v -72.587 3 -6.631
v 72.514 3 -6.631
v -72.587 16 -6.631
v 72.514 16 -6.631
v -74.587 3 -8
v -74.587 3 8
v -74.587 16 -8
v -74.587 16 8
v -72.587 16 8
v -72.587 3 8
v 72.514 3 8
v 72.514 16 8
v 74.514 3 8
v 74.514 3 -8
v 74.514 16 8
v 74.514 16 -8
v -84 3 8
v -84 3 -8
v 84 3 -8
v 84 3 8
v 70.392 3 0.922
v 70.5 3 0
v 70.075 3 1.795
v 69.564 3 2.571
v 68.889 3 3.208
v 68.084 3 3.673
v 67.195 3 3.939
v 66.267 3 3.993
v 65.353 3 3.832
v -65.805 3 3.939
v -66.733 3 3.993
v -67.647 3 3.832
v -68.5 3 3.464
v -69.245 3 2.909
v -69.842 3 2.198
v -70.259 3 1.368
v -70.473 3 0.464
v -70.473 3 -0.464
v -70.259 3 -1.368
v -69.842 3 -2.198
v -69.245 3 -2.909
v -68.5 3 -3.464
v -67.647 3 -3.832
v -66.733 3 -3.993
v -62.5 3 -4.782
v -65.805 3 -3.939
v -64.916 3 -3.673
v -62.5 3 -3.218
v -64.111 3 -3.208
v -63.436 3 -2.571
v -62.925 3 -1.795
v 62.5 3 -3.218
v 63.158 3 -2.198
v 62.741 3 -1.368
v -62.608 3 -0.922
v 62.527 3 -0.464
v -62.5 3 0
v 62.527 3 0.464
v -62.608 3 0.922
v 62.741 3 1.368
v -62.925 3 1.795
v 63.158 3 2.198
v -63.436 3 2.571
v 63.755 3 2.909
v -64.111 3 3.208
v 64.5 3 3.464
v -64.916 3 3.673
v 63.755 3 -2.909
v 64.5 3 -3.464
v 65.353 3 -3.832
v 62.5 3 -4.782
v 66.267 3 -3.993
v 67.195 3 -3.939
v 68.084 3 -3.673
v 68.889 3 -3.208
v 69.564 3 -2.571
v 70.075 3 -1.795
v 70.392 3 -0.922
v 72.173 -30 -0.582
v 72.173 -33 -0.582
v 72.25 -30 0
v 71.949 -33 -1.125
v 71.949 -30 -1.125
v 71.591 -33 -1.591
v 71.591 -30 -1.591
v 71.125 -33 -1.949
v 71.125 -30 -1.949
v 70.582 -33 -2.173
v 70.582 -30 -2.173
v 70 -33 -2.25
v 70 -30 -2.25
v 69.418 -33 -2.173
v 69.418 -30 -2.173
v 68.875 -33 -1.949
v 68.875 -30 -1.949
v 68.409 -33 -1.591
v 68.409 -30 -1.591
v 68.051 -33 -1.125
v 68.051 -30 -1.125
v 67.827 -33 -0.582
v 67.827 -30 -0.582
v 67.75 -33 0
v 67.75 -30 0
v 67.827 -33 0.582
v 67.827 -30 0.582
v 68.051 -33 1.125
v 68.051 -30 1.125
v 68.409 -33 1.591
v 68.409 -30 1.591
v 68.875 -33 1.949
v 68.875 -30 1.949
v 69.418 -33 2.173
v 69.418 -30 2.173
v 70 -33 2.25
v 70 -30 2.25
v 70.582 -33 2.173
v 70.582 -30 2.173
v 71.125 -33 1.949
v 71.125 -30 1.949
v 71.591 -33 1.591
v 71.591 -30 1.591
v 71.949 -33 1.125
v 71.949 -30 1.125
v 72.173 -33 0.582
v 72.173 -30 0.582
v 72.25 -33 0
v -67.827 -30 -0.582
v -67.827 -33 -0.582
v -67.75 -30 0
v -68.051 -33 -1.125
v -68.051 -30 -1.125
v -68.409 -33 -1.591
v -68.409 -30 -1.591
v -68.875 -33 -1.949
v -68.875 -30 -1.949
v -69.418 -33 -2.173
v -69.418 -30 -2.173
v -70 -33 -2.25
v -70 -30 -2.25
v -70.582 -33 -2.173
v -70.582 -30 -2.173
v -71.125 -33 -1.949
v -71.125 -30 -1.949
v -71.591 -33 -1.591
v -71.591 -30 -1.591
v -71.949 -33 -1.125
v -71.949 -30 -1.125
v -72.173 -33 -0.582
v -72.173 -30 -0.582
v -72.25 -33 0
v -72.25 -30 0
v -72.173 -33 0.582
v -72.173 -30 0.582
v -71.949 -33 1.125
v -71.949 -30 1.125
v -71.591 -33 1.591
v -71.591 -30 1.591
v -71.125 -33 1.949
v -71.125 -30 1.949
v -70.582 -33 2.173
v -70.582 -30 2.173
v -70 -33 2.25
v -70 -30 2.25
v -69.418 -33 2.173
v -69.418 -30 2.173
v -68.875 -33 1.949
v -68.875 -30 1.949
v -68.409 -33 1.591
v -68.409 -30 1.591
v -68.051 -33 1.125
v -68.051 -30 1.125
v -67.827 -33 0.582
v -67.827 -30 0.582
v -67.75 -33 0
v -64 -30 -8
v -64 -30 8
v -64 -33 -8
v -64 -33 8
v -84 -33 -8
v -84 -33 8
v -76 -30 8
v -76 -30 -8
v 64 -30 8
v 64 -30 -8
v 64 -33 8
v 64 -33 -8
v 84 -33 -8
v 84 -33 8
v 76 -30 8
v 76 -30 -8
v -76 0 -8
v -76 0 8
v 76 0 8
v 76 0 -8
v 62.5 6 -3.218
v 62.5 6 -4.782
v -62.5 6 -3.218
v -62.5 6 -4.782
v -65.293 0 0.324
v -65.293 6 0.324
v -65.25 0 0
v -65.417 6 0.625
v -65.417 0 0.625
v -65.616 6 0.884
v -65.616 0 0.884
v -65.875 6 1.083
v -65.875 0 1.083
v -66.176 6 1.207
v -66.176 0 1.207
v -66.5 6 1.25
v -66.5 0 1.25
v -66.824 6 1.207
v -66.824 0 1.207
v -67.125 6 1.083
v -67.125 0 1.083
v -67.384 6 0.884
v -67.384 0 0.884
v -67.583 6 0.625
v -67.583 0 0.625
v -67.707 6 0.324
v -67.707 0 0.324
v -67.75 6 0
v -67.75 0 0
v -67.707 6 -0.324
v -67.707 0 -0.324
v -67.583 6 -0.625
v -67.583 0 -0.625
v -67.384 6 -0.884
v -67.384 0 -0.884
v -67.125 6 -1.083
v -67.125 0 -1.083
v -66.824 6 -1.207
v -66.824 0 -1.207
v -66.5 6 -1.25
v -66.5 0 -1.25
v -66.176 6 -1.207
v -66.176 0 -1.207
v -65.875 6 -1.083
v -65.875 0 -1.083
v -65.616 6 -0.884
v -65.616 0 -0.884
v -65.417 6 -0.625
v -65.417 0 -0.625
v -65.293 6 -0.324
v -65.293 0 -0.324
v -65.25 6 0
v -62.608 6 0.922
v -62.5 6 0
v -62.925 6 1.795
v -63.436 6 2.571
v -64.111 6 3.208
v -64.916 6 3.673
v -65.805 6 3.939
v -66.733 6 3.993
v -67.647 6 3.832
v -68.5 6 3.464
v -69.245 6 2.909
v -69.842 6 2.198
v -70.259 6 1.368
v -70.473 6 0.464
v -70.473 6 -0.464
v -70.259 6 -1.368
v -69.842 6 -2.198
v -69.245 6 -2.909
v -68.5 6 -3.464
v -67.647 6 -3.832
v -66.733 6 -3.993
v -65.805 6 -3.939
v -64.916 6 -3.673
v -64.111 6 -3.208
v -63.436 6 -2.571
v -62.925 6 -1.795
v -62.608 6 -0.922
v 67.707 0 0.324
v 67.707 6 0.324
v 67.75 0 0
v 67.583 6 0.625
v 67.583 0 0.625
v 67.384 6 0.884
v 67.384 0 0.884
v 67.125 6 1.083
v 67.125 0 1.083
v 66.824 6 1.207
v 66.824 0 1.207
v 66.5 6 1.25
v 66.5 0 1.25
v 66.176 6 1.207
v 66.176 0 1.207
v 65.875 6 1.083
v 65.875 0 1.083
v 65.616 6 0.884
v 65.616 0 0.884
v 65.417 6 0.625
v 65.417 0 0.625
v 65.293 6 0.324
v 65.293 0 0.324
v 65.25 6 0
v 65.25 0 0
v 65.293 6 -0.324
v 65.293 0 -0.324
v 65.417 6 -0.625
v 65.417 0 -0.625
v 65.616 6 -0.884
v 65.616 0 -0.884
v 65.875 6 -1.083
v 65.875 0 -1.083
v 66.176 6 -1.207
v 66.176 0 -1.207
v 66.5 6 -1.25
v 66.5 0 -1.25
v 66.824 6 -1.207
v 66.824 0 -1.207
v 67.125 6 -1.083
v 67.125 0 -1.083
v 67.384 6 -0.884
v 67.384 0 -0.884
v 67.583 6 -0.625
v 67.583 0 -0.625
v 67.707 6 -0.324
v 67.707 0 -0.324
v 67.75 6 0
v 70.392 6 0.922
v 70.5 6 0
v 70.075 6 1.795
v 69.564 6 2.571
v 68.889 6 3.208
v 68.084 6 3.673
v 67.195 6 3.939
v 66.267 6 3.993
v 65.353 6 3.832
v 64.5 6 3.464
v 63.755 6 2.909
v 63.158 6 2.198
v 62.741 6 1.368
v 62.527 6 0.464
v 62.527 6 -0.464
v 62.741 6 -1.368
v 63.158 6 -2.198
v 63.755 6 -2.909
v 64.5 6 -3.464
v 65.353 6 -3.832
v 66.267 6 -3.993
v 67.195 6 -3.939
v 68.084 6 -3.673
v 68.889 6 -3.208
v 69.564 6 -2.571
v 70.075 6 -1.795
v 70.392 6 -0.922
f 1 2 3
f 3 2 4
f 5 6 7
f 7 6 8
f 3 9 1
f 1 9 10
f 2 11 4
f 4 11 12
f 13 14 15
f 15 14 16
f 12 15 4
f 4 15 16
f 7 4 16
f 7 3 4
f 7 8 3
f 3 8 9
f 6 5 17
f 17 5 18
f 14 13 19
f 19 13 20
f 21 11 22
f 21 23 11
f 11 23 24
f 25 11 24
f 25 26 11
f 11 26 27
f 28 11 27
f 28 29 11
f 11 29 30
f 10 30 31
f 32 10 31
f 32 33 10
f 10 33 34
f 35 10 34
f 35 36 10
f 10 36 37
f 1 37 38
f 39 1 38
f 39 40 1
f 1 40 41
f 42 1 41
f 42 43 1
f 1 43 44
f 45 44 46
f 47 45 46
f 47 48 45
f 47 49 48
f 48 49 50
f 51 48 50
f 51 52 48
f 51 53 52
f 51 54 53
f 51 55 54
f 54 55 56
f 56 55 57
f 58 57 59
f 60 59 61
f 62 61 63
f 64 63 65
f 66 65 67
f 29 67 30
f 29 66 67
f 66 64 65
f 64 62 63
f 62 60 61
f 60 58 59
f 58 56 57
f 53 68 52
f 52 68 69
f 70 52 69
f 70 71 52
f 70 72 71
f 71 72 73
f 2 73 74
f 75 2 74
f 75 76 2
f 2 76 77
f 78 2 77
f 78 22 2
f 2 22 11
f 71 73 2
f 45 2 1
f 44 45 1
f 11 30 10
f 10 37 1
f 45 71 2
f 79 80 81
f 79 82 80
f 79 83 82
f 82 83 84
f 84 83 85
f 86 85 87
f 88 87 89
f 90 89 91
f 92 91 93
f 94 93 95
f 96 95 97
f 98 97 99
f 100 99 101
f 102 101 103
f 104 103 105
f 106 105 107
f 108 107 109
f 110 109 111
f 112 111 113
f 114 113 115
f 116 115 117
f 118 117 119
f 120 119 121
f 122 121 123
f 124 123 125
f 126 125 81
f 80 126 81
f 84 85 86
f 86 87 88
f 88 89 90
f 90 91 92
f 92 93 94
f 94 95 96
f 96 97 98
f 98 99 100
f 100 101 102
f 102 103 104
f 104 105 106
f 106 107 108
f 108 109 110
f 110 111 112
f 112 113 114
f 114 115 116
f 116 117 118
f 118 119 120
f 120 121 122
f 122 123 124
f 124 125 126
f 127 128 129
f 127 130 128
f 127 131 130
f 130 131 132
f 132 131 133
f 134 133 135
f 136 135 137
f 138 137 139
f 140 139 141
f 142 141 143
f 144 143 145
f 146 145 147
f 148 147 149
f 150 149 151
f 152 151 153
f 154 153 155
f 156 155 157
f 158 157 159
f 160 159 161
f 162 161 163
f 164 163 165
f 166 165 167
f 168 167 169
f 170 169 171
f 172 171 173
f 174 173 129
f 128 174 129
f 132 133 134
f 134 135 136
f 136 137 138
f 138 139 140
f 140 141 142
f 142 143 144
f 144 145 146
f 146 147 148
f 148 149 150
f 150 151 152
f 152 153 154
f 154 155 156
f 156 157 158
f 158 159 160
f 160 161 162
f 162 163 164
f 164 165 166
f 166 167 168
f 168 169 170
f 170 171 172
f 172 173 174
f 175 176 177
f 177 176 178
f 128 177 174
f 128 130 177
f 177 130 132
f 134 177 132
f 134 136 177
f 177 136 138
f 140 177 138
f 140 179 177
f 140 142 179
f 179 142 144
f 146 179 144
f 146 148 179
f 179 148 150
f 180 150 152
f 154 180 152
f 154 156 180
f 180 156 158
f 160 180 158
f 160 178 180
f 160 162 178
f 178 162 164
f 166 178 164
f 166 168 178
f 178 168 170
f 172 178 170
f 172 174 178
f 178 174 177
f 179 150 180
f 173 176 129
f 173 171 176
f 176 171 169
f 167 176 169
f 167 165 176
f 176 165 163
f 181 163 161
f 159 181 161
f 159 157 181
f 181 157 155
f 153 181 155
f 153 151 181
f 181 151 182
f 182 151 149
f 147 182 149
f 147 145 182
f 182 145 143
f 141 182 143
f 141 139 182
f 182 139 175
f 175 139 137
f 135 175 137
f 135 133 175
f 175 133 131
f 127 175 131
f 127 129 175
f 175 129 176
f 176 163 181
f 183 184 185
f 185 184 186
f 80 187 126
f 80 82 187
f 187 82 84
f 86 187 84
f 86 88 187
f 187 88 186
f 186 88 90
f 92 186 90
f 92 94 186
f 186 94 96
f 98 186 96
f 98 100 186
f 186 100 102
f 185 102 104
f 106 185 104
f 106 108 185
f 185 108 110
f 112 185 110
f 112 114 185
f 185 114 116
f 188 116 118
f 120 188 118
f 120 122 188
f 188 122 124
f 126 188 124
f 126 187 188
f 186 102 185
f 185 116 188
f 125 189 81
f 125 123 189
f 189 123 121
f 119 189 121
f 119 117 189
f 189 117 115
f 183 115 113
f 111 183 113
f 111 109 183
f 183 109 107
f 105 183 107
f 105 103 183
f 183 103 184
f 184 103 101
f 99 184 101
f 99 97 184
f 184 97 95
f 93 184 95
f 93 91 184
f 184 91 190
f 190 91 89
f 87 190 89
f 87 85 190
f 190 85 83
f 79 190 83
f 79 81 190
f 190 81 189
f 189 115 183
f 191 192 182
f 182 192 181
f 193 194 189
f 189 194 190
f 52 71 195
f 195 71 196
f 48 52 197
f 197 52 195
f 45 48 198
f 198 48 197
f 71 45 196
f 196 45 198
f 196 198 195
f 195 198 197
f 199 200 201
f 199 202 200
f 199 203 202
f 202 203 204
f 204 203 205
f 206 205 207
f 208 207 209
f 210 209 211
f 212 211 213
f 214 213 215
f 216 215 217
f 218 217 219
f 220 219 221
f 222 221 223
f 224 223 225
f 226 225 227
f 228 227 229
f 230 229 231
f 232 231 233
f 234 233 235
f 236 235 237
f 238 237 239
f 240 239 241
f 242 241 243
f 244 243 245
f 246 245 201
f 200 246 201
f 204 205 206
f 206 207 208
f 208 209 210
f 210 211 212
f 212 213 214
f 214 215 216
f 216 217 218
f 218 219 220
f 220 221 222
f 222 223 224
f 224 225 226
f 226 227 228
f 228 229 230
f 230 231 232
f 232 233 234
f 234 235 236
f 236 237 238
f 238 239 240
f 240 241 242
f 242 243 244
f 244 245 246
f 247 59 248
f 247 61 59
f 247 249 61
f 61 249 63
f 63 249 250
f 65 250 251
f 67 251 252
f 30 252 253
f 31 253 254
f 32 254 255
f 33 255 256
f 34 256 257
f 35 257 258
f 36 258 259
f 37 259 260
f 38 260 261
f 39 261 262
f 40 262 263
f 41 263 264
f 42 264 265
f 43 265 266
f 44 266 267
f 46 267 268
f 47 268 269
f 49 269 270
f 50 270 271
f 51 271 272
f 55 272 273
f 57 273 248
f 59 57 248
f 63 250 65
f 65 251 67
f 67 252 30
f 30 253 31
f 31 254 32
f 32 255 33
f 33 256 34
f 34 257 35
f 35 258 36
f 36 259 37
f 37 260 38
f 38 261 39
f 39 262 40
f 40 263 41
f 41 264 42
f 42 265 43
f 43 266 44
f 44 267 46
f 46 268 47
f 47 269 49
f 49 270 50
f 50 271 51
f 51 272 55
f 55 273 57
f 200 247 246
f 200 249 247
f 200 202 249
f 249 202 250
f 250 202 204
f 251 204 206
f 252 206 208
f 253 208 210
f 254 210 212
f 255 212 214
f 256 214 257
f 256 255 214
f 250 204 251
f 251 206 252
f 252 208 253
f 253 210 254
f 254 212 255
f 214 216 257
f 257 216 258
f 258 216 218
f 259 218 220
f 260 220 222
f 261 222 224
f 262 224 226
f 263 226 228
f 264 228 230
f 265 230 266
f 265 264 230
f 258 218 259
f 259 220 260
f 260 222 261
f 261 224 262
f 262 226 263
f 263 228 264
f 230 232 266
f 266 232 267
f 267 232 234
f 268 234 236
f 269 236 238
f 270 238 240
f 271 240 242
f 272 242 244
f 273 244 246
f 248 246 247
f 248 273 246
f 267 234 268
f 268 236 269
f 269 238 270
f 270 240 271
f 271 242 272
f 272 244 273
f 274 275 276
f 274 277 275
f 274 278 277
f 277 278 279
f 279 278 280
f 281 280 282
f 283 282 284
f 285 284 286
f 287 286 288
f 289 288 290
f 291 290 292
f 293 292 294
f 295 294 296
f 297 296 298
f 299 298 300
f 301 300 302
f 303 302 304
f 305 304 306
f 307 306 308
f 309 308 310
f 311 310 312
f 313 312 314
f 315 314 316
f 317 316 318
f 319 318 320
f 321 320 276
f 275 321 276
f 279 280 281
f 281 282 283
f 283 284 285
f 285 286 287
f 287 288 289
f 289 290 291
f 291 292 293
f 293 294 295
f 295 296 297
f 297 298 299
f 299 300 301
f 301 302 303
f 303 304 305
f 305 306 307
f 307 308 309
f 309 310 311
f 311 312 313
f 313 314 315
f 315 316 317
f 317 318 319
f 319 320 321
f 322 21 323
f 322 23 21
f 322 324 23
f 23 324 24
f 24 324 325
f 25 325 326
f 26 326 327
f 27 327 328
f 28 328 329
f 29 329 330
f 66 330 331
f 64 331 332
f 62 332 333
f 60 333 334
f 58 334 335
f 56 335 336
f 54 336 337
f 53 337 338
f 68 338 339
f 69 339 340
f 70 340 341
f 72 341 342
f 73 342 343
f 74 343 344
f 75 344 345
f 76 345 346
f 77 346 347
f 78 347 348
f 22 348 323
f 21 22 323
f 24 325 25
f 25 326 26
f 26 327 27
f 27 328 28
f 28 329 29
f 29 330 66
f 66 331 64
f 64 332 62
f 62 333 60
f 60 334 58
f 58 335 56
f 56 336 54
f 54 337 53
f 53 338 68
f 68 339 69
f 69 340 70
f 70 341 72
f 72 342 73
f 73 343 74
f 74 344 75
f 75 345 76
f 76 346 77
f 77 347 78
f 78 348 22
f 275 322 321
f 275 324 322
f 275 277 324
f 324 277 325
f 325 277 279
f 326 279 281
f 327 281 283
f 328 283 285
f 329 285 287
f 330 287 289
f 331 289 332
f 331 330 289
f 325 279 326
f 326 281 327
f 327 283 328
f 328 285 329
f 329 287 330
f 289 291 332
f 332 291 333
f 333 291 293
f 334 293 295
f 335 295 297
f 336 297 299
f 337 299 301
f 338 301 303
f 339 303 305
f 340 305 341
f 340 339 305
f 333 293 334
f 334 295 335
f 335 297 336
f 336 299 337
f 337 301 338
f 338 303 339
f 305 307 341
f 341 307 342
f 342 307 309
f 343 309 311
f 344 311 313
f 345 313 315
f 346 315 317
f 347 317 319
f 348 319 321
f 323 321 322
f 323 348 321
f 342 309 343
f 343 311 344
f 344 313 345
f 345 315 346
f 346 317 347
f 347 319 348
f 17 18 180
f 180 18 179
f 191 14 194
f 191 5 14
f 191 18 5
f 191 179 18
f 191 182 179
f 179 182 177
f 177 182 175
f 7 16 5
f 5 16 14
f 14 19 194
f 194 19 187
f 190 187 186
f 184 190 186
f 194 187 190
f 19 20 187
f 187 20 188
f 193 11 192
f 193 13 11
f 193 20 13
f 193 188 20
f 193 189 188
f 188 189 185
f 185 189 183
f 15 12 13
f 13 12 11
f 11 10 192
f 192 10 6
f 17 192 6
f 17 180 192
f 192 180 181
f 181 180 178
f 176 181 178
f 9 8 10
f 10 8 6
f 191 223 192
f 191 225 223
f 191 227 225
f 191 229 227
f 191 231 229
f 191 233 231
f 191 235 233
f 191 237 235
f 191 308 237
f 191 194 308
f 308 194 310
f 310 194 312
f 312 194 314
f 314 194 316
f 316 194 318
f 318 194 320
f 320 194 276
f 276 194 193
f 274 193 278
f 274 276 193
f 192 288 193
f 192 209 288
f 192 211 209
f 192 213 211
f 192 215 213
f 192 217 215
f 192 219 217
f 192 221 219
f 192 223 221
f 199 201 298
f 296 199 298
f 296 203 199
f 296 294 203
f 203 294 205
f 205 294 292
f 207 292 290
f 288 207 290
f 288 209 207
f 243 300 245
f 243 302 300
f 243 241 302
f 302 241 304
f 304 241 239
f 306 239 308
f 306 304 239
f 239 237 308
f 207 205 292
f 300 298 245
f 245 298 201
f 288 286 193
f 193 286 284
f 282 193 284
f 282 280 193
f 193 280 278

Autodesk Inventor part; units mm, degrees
ref_plane "YZ Plane" through (0, 0, 0) normal (1, 0, 0) x (0, 1, 0)
ref_plane "XZ Plane" through (0, 0, 0) normal (0, 1, 0) x (-1, 0, 0)
ref_plane "XY Plane" through (0, 0, 0) normal (0, 0, 1) x (1, 0, 0)
sketch "Sketch1" plane through (0, 0, 0) normal (0, 1, 0) x (-1, 0, 0)
  line L0 (75, 8) -> (-75, 8)
  line L1 (-75, 8) -> (-75, -8)
  line L2 (-75, -8) -> (75, -8)
  line L3 (75, -8) -> (75, 8)
  line L4 (75, 8) -> (-75, -8) construction
  line L5 (-75, 8) -> (75, -8) construction
  line L6 (-75, 8) -> (-84, 8)
  line L7 (-84, 8) -> (-84, -8)
  line L8 (-84, -8) -> (-75, -8)
  line L9 (-75, -8) -> (-75, 8)
  line L10 (75, 8) -> (84, 8)
  line L11 (84, 8) -> (84, -8)
  line L12 (84, -8) -> (75, -8)
  line L13 (75, -8) -> (75, 8)
  point P0 (0, 0)
  dimension "d0" = 150
  dimension "d1" = 16
  dimension "d2" = 9
  dimension "d3" = 9
extrude "Extrusion1" add sketch "Sketch1" along normal blind 3
sketch "Sketch2" plane through (0, 3, 0) normal (0, 1, 0) x (1, 0, 0)
  line L0 (-70.5, 4.5) -> (70.5, 4.5)
  line L1 (70.5, 4.5) -> (70.5, -4.5)
  line L2 (70.5, -4.5) -> (-70.5, -4.5)
  line L3 (-70.5, -4.5) -> (-70.5, 4.5)
  line L4 (-70.5, 4.5) -> (70.5, -4.5) construction
  line L5 (70.5, 4.5) -> (-70.5, -4.5) construction
  circle A0 centre (-66.5, 0) radius 1.25
  circle A1 centre (-66.5, 0) radius 4
  circle A2 centre (66.5, 0) radius 1.25
  circle A3 centre (66.5, 0) radius 4
  point P0 (0, 0)
  dimension "d6" = 141
  dimension "d7" = 9
  dimension "d8" = 2.5
  dimension "d9" = 8
  dimension "d10" = 4
  dimension "d11" = 2.5
  dimension "d12" = 8
  dimension "d13" = 4
extrude "Extrusion2" add sketch "Sketch2" along normal blind 3 contours A1 | A3
sketch "Sketch3" plane through (0, 3, 0) normal (0, 1, 0) x (1, 0, 0)
  circle A0 centre (-66.5, 0) radius 1.25 projected
  circle A1 centre (66.5, 0) radius 1.25 projected
  point P0 (0, 0)
extrude "Extrusion3" cut sketch "Sketch3" against normal blind 3
sketch "Sketch4" plane through (0, 3, 0) normal (0, 1, 0) x (1, 0, 0)
  line L0 (-62.5, 4.7822) -> (62.5, 4.7822)
  line L1 (62.5, 4.7822) -> (62.5, 3.2178)
  line L2 (62.5, 3.2178) -> (-62.5, 3.2178)
  line L3 (-62.5, 3.2178) -> (-62.5, 4.7822)
  line L4 (-62.5, 4.7822) -> (62.5, 3.2178) construction
  line L5 (62.5, 4.7822) -> (-62.5, 3.2178) construction
  point P0 (0, 0)
  point P1 (0, 4)
extrude "Extrusion4" add sketch "Sketch4" along normal blind 3
sketch "Sketch5" plane through (0, 0, 0) normal (0, -1, 0) x (1, 0, 0)
  line L0 (84, -8) -> (-84, -8) projected
  line L1 (-84, 8) -> (-76, 8)
  line L2 (-76, 8) -> (-76, -8)
  line L3 (-76, -8) -> (-84, -8)
  line L4 (-84, -8) -> (-84, 8)
  line L5 (84, 8) -> (76, 8)
  line L6 (76, 8) -> (76, -8)
  line L7 (76, -8) -> (84, -8)
  line L8 (84, -8) -> (84, 8)
  point P0 (0, 0)
  dimension "d20" = 8
  dimension "d21" = 8
extrude "Extrusion5" add sketch "Sketch5" along normal blind 30
sketch "Sketch6" plane through (0, -30, 0) normal (0, -1, 0) x (1, 0, 0)
  line L0 (-84, 8) -> (-64, 8)
  line L1 (-64, 8) -> (-64, -8)
  line L2 (-64, -8) -> (-84, -8)
  line L3 (-84, -8) -> (-84, 8)
  point P0 (0, 0)
  dimension "d24" = 20
sketch "Sketch7" plane through (0, -30, 0) normal (0, -1, 0) x (1, 0, 0)
  line L0 (84, 8) -> (64, 8)
  line L1 (64, 8) -> (64, -8)
  line L2 (64, -8) -> (84, -8)
  line L3 (84, -8) -> (84, 8)
  point P0 (0, 0)
  dimension "d25" = 20
extrude "Extrusion6" add sketch "Sketch7" along normal blind 3
extrude "Extrusion7" add sketch "Sketch6" along normal blind 3
sketch "Sketch8" plane through (0, -33, 0) normal (0, -1, 0) x (1, 0, 0)
  line L0 (-84, -8) -> (-64, -8) projected
  line L1 (-76, -8) -> (-76, 8) projected
  line L2 (-64, 8) -> (-76, 8) projected
  line L3 (-64, -8) -> (-64, 8) projected
  line L4 (-76, -8) -> (-64, -8) projected
  circle A0 centre (-70, 0) radius 2.25
  point P0 (0, 0)
  dimension "d30" = 4.5
extrude "Extrusion8" cut sketch "Sketch8" against normal blind 3 contours A0
sketch "Sketch9" plane through (0, -33, 0) normal (0, -1, 0) x (1, 0, 0)
  line L0 (76, 8) -> (76, -8) projected
  line L1 (76, 8) -> (76, -8) projected
  line L2 (64, -8) -> (76, -8) projected
  line L3 (64, 8) -> (64, -8) projected
  line L4 (76, 8) -> (64, 8) projected
  circle A0 centre (70, 0) radius 2.25
  point P0 (0, 0)
  dimension "d33" = 4.5
extrude "Extrusion9" cut sketch "Sketch9" against normal blind 3 contours A0
sketch "Sketch11" plane through (0, 3, 0) normal (0, 1, 0) x (1, 0, 0)
  line L0 (-84, -8) -> (84, -8) projected
  line L1 (84, 8) -> (-84, 8) projected
  line L2 (-72.587, 8) -> (-74.587, 8)
  line L3 (-74.587, 8) -> (-74.587, -8)
  line L4 (-74.587, -8) -> (-72.587, -8)
  line L5 (-72.587, -8) -> (-72.587, 8)
  line L6 (-72.587, 8) -> (72.5136, 8)
  line L7 (72.5136, 8) -> (72.5136, 6.6306)
  line L8 (72.5136, 6.6306) -> (-72.587, 6.6306)
  line L9 (-72.587, 6.6306) -> (-72.587, 8)
  line L10 (72.5136, 8) -> (74.5136, 8)
  line L11 (74.5136, 8) -> (74.5136, -8)
  line L12 (74.5136, -8) -> (72.5136, -8)
  line L13 (72.5136, -8) -> (72.5136, 8)
  point P0 (0, 0)
  dimension "d38" = 2
  dimension "d39" = 2
extrude "Extrusion10" add sketch "Sketch11" along normal blind 13 contours L3 L1 L5 L0 | L13 L7 L1 L11 L0 | L5 L1 L7 L8
properties part number "montowanie kostek ark do rozdzielnicy"
